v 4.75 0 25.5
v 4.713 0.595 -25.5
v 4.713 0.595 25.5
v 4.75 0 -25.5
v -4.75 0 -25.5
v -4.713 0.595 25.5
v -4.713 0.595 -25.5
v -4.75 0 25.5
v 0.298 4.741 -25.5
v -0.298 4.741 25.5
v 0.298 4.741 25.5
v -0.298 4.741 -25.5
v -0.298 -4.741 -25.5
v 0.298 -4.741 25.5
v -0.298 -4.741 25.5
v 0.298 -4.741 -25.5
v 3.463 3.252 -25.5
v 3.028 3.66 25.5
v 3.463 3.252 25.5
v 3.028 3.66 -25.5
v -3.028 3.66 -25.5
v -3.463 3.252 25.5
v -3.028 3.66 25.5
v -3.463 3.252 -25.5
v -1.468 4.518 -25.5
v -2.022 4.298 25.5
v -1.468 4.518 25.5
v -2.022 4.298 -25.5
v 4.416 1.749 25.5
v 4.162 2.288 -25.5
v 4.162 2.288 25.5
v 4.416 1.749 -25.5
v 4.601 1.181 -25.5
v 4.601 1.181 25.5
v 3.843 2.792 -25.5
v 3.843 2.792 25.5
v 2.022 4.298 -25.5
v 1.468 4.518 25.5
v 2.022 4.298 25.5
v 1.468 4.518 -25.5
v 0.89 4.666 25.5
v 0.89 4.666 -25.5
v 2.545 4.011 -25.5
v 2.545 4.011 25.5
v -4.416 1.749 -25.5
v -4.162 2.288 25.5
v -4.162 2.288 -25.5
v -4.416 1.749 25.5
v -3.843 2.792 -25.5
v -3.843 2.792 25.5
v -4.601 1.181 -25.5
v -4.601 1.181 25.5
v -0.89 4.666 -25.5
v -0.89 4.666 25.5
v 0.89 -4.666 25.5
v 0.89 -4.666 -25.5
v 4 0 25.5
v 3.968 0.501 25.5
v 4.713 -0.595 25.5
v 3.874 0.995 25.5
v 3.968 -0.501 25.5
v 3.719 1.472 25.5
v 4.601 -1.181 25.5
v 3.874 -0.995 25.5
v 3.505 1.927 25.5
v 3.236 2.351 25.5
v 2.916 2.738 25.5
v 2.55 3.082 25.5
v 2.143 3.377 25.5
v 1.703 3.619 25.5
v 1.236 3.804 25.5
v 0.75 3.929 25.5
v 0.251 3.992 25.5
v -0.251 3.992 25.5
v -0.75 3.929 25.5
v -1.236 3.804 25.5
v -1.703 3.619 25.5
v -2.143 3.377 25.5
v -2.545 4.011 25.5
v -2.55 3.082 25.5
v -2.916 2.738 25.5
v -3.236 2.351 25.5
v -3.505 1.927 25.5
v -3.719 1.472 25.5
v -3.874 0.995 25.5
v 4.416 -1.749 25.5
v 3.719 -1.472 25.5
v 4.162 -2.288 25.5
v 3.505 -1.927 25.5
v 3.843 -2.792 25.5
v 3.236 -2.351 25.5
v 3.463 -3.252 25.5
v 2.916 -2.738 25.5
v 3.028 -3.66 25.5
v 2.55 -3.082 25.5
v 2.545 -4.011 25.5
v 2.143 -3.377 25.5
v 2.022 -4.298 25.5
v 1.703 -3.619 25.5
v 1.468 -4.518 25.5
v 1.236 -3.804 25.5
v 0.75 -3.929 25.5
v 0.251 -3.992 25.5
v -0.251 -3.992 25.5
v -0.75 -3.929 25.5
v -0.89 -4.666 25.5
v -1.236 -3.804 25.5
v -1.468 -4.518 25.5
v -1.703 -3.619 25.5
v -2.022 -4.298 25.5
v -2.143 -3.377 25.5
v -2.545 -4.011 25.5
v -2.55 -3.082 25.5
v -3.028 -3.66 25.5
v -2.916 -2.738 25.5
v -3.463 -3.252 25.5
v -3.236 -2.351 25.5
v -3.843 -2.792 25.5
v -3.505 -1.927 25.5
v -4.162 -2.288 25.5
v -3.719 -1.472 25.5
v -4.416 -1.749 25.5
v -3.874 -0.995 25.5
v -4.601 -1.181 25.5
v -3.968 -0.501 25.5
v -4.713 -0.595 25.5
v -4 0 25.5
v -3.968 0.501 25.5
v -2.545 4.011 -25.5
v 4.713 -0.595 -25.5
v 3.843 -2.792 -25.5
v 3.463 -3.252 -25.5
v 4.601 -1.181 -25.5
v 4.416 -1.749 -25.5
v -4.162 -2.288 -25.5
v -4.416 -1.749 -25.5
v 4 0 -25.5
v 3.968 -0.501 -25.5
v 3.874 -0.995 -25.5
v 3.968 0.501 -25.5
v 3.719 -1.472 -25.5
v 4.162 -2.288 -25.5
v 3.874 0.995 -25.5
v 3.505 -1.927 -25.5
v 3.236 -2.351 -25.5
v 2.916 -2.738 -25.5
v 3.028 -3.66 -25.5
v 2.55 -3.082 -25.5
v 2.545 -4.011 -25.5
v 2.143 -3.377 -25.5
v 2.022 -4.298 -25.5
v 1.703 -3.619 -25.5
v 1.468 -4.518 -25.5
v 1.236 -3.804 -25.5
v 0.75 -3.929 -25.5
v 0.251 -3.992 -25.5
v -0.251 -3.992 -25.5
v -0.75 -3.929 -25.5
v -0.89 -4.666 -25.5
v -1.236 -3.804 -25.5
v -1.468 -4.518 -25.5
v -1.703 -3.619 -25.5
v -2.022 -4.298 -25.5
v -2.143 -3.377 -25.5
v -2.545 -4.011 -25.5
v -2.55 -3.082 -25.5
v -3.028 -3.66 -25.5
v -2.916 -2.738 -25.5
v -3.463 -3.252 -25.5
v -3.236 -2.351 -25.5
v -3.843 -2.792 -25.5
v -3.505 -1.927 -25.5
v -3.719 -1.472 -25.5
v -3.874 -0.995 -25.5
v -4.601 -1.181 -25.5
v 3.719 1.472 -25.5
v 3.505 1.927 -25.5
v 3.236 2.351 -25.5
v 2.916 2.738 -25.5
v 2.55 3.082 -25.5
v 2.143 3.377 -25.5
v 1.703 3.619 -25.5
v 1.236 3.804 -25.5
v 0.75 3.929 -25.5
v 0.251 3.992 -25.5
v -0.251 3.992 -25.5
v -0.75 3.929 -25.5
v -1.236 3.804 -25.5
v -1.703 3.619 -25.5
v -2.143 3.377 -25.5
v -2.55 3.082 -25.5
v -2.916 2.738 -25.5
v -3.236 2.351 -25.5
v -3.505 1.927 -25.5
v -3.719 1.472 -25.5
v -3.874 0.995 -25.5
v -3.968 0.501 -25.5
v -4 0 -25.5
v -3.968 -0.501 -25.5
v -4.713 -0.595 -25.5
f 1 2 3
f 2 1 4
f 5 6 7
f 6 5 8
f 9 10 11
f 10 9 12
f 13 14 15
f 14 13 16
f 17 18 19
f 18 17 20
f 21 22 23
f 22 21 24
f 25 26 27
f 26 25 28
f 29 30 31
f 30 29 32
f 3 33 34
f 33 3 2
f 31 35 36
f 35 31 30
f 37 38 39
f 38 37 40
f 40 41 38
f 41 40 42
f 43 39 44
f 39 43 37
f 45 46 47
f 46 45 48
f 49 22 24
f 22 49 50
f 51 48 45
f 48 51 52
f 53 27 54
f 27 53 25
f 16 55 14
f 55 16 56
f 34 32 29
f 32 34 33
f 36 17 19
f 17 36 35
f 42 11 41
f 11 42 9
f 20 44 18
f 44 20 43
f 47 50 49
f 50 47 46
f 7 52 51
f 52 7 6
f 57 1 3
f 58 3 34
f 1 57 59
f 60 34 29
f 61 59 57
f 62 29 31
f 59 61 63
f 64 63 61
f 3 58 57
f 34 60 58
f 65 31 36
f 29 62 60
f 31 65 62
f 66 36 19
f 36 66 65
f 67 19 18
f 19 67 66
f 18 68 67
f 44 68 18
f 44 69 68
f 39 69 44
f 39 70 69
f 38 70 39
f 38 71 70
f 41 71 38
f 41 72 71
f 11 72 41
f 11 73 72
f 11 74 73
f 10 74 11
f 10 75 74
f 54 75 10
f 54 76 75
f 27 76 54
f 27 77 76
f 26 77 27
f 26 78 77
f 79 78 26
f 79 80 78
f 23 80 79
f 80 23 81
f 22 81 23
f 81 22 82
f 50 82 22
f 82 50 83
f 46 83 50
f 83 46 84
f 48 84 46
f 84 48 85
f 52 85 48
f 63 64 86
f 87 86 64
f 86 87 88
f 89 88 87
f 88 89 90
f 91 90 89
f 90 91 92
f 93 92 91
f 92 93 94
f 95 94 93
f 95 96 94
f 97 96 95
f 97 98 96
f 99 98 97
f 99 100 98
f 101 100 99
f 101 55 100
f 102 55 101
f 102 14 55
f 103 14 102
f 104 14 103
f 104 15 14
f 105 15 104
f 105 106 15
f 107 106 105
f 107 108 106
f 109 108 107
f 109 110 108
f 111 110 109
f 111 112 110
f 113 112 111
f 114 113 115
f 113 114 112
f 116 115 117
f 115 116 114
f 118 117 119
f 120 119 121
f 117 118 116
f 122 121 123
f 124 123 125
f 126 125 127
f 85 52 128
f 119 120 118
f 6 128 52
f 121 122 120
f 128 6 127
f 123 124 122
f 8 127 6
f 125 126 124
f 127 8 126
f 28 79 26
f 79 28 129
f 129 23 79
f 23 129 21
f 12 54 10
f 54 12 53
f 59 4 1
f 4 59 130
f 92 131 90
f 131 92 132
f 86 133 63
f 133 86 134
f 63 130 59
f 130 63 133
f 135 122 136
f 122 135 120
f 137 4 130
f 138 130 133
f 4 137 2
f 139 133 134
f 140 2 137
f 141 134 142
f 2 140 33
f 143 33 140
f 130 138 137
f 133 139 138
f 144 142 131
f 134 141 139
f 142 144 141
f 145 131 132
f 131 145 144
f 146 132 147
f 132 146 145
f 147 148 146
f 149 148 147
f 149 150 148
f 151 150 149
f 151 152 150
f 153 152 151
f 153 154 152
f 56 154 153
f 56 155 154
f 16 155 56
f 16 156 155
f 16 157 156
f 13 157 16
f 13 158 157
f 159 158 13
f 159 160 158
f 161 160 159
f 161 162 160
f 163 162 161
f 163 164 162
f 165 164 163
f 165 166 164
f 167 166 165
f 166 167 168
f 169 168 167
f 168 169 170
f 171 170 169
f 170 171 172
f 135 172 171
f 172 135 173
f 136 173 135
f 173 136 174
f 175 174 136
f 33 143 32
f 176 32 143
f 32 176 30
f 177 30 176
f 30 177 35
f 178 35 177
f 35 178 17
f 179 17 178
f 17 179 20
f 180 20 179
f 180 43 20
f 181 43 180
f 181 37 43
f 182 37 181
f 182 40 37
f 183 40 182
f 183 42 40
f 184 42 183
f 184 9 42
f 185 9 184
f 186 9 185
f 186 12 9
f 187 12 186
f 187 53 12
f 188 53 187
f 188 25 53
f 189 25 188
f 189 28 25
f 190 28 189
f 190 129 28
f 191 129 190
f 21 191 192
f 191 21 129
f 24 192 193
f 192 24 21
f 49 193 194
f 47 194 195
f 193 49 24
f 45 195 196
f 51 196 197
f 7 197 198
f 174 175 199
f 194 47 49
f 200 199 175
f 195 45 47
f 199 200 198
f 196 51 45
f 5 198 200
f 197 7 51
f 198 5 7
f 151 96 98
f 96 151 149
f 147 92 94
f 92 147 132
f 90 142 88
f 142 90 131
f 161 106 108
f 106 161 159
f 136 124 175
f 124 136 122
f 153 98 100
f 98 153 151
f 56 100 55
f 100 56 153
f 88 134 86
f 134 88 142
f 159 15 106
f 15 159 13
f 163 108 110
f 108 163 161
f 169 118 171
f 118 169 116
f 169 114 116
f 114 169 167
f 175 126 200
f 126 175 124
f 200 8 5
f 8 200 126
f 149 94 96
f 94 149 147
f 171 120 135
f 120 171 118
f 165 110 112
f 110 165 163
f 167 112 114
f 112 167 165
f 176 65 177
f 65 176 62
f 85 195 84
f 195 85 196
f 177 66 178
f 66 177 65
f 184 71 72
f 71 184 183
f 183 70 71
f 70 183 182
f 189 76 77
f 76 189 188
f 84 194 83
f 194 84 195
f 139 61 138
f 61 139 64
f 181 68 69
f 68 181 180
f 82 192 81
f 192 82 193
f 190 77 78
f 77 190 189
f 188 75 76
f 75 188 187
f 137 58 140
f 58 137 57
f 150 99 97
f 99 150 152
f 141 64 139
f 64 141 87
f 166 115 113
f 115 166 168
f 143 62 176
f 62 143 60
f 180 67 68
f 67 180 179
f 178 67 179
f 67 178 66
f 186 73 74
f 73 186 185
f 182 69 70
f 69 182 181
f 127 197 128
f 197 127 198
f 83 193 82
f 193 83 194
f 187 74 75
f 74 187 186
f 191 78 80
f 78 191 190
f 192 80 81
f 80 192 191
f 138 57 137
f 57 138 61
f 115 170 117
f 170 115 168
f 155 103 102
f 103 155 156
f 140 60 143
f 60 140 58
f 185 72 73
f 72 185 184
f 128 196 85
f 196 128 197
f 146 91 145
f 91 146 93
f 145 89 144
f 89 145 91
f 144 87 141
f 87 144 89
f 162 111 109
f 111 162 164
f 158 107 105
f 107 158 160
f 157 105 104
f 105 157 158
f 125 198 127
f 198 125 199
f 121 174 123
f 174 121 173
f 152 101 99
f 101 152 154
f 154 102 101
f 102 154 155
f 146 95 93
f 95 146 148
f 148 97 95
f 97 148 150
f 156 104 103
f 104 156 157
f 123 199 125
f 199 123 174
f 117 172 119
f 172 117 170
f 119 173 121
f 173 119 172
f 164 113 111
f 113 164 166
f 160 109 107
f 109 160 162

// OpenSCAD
$fn = 50;


difference() {
	union() {
		translate(v = [0, 0, -25.5000000000]) {
			cylinder(h = 51, r = 4.7500000000);
		}
	}
	union() {
		translate(v = [0, 0, -100.0000000000]) {
			cylinder(h = 200, r = 4.0000000000);
		}
	}
}
